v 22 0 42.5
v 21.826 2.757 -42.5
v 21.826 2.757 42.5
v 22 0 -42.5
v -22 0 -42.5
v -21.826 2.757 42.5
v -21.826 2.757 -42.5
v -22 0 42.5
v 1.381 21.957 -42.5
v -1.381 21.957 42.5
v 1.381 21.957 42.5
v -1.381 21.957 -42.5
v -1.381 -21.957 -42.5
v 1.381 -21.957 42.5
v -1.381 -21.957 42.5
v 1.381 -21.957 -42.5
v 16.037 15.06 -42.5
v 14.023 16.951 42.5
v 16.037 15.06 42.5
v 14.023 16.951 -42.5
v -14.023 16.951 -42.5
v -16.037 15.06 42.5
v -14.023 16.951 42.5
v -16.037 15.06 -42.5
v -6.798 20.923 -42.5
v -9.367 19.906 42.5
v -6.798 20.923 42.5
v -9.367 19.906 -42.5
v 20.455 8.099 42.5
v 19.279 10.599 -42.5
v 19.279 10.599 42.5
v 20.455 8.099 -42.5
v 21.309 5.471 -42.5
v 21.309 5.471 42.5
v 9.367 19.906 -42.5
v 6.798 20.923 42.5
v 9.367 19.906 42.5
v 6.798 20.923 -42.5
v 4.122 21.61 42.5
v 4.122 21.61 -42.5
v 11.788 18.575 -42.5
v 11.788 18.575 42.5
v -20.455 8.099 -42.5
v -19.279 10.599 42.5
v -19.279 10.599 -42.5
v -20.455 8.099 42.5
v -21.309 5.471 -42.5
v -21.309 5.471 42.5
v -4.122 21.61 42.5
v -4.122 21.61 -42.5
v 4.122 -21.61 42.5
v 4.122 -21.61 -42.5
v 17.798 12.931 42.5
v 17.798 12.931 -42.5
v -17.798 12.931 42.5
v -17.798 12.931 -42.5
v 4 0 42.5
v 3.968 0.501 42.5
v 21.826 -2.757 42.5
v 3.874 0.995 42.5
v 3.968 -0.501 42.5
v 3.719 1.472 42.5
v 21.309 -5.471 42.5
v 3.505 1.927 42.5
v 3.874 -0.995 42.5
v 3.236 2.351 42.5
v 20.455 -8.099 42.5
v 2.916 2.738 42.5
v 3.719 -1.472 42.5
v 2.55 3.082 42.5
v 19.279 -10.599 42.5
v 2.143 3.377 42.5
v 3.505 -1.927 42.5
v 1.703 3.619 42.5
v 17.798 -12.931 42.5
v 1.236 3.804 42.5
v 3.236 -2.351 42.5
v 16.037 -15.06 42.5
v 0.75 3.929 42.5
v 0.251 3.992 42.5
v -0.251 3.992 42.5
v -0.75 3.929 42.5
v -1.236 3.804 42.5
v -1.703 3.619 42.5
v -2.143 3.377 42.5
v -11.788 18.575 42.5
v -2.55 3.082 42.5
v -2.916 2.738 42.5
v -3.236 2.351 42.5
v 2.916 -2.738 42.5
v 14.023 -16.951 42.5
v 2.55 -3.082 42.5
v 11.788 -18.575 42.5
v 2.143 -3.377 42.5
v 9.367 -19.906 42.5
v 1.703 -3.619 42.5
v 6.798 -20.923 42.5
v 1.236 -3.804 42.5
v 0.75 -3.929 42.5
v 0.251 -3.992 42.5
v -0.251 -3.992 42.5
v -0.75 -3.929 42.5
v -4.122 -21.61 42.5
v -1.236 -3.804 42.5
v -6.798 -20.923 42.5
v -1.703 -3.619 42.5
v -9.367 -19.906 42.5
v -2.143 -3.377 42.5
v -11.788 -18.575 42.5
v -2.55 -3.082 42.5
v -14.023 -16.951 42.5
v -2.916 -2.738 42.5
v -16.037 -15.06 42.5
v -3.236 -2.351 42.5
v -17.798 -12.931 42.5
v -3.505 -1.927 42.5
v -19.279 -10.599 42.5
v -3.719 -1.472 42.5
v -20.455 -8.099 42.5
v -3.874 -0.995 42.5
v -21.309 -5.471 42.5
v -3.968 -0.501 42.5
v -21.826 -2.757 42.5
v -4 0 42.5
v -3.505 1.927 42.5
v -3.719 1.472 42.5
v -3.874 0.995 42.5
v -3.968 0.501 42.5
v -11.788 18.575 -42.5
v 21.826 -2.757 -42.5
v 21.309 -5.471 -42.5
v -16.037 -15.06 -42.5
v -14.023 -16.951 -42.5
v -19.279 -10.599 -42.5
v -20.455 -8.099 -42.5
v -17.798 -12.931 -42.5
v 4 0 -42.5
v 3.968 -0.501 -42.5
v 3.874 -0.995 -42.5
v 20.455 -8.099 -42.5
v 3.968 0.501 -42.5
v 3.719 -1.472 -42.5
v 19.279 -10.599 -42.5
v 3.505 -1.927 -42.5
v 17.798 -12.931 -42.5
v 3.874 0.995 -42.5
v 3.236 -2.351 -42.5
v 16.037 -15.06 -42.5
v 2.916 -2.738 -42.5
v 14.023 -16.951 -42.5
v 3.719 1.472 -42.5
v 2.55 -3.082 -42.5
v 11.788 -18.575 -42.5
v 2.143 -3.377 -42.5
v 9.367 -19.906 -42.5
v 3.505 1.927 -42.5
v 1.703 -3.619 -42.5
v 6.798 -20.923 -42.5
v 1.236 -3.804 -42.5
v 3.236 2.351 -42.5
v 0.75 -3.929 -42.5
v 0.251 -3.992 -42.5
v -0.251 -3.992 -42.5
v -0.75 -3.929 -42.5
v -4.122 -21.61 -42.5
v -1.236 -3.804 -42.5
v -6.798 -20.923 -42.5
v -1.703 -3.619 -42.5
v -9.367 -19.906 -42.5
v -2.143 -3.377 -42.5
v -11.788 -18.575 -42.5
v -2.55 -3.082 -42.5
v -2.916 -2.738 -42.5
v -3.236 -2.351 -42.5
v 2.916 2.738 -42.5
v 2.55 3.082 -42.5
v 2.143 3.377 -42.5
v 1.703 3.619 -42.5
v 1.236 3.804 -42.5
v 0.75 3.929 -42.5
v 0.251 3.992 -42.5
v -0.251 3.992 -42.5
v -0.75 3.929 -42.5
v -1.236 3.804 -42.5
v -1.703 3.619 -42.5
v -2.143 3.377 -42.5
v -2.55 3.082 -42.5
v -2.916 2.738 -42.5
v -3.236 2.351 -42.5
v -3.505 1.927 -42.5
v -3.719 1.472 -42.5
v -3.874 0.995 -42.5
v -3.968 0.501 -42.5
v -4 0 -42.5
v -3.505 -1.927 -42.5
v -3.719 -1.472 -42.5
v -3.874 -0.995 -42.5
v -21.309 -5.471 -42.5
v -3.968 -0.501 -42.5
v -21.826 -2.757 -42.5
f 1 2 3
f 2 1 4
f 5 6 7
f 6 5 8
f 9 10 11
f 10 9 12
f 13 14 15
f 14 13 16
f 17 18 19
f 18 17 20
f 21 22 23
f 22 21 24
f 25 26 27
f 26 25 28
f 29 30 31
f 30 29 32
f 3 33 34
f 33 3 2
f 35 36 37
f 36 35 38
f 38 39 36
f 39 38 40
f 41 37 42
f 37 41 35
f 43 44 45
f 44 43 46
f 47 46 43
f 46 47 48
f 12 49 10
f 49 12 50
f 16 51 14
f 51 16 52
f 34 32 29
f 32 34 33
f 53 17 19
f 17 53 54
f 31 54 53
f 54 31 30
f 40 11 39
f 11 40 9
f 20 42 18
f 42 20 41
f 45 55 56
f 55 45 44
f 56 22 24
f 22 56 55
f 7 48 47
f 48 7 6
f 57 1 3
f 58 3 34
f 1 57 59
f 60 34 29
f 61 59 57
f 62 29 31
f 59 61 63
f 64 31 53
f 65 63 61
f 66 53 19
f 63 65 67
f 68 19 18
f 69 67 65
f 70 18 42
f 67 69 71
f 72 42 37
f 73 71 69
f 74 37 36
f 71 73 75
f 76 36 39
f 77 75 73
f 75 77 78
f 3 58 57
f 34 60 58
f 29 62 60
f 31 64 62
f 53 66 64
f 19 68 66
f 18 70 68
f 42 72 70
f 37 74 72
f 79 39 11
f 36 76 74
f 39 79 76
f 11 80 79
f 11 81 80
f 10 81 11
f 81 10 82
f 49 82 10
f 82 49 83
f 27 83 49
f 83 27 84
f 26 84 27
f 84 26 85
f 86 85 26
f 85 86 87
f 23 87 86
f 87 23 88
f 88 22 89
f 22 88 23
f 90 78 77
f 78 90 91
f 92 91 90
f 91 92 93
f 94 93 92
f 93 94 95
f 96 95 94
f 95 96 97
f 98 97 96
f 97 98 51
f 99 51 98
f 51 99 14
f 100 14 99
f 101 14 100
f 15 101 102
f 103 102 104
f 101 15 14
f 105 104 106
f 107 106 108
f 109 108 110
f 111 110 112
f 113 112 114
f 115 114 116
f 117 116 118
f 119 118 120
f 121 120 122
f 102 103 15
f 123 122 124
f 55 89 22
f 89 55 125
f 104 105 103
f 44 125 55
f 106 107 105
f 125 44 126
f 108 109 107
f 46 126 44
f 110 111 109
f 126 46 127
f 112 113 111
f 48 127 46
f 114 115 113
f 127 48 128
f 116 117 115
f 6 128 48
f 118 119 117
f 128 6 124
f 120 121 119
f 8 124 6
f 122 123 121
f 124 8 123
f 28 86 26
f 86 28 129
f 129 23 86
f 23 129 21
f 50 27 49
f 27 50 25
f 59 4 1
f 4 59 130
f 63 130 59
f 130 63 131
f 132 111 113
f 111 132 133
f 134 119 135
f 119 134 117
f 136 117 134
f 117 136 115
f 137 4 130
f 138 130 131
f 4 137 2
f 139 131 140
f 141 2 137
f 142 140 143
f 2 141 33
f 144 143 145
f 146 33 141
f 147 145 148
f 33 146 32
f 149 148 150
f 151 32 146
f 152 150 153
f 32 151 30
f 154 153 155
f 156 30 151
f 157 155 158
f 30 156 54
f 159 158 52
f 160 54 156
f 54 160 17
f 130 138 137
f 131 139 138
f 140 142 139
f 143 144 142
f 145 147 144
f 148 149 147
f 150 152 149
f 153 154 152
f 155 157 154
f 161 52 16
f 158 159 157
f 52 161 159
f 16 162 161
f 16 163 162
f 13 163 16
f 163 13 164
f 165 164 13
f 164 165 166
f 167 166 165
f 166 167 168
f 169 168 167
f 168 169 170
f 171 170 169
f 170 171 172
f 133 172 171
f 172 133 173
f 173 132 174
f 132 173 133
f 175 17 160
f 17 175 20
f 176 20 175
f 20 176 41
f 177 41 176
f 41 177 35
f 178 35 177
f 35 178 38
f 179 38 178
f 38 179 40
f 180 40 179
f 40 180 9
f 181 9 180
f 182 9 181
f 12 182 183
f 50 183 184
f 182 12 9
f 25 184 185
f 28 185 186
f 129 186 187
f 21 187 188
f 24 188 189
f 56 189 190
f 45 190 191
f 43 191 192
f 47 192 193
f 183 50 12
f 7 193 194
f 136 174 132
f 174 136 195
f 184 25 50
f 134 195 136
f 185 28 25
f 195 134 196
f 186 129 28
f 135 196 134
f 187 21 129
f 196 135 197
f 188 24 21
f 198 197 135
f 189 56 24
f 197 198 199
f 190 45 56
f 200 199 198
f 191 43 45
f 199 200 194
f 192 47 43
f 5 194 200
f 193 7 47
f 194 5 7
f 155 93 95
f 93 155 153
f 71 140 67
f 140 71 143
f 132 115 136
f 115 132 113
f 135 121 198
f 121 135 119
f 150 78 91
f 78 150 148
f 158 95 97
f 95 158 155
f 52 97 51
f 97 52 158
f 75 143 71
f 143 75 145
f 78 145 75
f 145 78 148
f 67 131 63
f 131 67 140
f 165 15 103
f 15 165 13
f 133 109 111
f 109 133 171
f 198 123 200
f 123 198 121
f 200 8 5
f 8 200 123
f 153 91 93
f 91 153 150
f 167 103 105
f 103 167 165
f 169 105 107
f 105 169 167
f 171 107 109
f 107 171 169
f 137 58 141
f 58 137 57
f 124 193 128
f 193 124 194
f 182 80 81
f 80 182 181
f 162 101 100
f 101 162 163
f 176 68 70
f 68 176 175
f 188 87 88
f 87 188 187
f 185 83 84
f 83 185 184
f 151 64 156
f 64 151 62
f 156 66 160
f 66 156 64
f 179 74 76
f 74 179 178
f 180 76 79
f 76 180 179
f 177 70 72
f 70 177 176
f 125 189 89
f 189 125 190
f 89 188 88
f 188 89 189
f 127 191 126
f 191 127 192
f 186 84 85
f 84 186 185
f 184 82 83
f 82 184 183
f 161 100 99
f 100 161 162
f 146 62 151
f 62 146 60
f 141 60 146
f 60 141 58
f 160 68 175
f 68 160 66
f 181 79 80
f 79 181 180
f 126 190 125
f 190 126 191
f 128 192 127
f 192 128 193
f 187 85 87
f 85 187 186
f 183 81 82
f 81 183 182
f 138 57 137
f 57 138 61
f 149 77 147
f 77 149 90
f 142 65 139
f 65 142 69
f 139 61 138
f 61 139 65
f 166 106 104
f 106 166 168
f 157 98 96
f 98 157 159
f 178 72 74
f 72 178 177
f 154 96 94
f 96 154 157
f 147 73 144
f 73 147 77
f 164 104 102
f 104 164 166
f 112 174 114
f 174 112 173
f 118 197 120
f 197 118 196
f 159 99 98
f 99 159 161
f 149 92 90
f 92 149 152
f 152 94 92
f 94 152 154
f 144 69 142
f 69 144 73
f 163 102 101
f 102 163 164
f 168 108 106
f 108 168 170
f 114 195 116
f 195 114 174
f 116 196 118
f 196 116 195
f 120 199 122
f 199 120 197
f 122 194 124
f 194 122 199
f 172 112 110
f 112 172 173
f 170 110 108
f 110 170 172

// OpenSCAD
$fn = 50;


difference() {
	union() {
		translate(v = [0, 0, -42.5000000000]) {
			cylinder(h = 85, r = 22.0000000000);
		}
	}
	union() {
		translate(v = [0, 0, -100.0000000000]) {
			cylinder(h = 200, r = 4);
		}
	}
}
